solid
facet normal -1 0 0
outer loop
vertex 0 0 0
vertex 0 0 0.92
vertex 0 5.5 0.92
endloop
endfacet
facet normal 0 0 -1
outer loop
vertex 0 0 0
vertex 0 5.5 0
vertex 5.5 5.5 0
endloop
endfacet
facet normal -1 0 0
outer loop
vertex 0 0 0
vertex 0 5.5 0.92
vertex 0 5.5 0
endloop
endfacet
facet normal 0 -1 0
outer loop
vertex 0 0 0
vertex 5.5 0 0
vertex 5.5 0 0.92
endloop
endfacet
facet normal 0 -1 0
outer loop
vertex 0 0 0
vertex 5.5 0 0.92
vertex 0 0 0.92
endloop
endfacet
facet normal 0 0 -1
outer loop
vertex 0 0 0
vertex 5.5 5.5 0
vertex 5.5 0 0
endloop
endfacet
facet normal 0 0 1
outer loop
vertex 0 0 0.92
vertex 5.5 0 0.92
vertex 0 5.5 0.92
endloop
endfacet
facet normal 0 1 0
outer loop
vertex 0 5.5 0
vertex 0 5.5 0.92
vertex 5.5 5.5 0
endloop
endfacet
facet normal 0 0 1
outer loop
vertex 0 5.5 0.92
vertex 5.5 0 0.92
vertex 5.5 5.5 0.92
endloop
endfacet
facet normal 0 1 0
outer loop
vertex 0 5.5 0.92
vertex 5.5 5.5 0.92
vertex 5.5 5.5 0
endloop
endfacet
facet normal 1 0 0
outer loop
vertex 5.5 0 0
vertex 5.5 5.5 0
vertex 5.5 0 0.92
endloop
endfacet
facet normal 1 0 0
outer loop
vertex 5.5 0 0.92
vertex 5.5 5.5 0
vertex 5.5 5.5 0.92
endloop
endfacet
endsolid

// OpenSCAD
/* Warning, this is a very basic generator with a lot of approximation 
input data : [VFBGA, 2HW, 5.5x5.5x0.92mm, 64, , B, C04-00543B]
generated by com.zoubworld.electronics.cad.model3d.Basic
Date : Sun Feb 15 10:50:48 CET 2026
*/

//body
color("black")
translate([0,0,0])
cube([5.5,5.5,0.92], center=false);
